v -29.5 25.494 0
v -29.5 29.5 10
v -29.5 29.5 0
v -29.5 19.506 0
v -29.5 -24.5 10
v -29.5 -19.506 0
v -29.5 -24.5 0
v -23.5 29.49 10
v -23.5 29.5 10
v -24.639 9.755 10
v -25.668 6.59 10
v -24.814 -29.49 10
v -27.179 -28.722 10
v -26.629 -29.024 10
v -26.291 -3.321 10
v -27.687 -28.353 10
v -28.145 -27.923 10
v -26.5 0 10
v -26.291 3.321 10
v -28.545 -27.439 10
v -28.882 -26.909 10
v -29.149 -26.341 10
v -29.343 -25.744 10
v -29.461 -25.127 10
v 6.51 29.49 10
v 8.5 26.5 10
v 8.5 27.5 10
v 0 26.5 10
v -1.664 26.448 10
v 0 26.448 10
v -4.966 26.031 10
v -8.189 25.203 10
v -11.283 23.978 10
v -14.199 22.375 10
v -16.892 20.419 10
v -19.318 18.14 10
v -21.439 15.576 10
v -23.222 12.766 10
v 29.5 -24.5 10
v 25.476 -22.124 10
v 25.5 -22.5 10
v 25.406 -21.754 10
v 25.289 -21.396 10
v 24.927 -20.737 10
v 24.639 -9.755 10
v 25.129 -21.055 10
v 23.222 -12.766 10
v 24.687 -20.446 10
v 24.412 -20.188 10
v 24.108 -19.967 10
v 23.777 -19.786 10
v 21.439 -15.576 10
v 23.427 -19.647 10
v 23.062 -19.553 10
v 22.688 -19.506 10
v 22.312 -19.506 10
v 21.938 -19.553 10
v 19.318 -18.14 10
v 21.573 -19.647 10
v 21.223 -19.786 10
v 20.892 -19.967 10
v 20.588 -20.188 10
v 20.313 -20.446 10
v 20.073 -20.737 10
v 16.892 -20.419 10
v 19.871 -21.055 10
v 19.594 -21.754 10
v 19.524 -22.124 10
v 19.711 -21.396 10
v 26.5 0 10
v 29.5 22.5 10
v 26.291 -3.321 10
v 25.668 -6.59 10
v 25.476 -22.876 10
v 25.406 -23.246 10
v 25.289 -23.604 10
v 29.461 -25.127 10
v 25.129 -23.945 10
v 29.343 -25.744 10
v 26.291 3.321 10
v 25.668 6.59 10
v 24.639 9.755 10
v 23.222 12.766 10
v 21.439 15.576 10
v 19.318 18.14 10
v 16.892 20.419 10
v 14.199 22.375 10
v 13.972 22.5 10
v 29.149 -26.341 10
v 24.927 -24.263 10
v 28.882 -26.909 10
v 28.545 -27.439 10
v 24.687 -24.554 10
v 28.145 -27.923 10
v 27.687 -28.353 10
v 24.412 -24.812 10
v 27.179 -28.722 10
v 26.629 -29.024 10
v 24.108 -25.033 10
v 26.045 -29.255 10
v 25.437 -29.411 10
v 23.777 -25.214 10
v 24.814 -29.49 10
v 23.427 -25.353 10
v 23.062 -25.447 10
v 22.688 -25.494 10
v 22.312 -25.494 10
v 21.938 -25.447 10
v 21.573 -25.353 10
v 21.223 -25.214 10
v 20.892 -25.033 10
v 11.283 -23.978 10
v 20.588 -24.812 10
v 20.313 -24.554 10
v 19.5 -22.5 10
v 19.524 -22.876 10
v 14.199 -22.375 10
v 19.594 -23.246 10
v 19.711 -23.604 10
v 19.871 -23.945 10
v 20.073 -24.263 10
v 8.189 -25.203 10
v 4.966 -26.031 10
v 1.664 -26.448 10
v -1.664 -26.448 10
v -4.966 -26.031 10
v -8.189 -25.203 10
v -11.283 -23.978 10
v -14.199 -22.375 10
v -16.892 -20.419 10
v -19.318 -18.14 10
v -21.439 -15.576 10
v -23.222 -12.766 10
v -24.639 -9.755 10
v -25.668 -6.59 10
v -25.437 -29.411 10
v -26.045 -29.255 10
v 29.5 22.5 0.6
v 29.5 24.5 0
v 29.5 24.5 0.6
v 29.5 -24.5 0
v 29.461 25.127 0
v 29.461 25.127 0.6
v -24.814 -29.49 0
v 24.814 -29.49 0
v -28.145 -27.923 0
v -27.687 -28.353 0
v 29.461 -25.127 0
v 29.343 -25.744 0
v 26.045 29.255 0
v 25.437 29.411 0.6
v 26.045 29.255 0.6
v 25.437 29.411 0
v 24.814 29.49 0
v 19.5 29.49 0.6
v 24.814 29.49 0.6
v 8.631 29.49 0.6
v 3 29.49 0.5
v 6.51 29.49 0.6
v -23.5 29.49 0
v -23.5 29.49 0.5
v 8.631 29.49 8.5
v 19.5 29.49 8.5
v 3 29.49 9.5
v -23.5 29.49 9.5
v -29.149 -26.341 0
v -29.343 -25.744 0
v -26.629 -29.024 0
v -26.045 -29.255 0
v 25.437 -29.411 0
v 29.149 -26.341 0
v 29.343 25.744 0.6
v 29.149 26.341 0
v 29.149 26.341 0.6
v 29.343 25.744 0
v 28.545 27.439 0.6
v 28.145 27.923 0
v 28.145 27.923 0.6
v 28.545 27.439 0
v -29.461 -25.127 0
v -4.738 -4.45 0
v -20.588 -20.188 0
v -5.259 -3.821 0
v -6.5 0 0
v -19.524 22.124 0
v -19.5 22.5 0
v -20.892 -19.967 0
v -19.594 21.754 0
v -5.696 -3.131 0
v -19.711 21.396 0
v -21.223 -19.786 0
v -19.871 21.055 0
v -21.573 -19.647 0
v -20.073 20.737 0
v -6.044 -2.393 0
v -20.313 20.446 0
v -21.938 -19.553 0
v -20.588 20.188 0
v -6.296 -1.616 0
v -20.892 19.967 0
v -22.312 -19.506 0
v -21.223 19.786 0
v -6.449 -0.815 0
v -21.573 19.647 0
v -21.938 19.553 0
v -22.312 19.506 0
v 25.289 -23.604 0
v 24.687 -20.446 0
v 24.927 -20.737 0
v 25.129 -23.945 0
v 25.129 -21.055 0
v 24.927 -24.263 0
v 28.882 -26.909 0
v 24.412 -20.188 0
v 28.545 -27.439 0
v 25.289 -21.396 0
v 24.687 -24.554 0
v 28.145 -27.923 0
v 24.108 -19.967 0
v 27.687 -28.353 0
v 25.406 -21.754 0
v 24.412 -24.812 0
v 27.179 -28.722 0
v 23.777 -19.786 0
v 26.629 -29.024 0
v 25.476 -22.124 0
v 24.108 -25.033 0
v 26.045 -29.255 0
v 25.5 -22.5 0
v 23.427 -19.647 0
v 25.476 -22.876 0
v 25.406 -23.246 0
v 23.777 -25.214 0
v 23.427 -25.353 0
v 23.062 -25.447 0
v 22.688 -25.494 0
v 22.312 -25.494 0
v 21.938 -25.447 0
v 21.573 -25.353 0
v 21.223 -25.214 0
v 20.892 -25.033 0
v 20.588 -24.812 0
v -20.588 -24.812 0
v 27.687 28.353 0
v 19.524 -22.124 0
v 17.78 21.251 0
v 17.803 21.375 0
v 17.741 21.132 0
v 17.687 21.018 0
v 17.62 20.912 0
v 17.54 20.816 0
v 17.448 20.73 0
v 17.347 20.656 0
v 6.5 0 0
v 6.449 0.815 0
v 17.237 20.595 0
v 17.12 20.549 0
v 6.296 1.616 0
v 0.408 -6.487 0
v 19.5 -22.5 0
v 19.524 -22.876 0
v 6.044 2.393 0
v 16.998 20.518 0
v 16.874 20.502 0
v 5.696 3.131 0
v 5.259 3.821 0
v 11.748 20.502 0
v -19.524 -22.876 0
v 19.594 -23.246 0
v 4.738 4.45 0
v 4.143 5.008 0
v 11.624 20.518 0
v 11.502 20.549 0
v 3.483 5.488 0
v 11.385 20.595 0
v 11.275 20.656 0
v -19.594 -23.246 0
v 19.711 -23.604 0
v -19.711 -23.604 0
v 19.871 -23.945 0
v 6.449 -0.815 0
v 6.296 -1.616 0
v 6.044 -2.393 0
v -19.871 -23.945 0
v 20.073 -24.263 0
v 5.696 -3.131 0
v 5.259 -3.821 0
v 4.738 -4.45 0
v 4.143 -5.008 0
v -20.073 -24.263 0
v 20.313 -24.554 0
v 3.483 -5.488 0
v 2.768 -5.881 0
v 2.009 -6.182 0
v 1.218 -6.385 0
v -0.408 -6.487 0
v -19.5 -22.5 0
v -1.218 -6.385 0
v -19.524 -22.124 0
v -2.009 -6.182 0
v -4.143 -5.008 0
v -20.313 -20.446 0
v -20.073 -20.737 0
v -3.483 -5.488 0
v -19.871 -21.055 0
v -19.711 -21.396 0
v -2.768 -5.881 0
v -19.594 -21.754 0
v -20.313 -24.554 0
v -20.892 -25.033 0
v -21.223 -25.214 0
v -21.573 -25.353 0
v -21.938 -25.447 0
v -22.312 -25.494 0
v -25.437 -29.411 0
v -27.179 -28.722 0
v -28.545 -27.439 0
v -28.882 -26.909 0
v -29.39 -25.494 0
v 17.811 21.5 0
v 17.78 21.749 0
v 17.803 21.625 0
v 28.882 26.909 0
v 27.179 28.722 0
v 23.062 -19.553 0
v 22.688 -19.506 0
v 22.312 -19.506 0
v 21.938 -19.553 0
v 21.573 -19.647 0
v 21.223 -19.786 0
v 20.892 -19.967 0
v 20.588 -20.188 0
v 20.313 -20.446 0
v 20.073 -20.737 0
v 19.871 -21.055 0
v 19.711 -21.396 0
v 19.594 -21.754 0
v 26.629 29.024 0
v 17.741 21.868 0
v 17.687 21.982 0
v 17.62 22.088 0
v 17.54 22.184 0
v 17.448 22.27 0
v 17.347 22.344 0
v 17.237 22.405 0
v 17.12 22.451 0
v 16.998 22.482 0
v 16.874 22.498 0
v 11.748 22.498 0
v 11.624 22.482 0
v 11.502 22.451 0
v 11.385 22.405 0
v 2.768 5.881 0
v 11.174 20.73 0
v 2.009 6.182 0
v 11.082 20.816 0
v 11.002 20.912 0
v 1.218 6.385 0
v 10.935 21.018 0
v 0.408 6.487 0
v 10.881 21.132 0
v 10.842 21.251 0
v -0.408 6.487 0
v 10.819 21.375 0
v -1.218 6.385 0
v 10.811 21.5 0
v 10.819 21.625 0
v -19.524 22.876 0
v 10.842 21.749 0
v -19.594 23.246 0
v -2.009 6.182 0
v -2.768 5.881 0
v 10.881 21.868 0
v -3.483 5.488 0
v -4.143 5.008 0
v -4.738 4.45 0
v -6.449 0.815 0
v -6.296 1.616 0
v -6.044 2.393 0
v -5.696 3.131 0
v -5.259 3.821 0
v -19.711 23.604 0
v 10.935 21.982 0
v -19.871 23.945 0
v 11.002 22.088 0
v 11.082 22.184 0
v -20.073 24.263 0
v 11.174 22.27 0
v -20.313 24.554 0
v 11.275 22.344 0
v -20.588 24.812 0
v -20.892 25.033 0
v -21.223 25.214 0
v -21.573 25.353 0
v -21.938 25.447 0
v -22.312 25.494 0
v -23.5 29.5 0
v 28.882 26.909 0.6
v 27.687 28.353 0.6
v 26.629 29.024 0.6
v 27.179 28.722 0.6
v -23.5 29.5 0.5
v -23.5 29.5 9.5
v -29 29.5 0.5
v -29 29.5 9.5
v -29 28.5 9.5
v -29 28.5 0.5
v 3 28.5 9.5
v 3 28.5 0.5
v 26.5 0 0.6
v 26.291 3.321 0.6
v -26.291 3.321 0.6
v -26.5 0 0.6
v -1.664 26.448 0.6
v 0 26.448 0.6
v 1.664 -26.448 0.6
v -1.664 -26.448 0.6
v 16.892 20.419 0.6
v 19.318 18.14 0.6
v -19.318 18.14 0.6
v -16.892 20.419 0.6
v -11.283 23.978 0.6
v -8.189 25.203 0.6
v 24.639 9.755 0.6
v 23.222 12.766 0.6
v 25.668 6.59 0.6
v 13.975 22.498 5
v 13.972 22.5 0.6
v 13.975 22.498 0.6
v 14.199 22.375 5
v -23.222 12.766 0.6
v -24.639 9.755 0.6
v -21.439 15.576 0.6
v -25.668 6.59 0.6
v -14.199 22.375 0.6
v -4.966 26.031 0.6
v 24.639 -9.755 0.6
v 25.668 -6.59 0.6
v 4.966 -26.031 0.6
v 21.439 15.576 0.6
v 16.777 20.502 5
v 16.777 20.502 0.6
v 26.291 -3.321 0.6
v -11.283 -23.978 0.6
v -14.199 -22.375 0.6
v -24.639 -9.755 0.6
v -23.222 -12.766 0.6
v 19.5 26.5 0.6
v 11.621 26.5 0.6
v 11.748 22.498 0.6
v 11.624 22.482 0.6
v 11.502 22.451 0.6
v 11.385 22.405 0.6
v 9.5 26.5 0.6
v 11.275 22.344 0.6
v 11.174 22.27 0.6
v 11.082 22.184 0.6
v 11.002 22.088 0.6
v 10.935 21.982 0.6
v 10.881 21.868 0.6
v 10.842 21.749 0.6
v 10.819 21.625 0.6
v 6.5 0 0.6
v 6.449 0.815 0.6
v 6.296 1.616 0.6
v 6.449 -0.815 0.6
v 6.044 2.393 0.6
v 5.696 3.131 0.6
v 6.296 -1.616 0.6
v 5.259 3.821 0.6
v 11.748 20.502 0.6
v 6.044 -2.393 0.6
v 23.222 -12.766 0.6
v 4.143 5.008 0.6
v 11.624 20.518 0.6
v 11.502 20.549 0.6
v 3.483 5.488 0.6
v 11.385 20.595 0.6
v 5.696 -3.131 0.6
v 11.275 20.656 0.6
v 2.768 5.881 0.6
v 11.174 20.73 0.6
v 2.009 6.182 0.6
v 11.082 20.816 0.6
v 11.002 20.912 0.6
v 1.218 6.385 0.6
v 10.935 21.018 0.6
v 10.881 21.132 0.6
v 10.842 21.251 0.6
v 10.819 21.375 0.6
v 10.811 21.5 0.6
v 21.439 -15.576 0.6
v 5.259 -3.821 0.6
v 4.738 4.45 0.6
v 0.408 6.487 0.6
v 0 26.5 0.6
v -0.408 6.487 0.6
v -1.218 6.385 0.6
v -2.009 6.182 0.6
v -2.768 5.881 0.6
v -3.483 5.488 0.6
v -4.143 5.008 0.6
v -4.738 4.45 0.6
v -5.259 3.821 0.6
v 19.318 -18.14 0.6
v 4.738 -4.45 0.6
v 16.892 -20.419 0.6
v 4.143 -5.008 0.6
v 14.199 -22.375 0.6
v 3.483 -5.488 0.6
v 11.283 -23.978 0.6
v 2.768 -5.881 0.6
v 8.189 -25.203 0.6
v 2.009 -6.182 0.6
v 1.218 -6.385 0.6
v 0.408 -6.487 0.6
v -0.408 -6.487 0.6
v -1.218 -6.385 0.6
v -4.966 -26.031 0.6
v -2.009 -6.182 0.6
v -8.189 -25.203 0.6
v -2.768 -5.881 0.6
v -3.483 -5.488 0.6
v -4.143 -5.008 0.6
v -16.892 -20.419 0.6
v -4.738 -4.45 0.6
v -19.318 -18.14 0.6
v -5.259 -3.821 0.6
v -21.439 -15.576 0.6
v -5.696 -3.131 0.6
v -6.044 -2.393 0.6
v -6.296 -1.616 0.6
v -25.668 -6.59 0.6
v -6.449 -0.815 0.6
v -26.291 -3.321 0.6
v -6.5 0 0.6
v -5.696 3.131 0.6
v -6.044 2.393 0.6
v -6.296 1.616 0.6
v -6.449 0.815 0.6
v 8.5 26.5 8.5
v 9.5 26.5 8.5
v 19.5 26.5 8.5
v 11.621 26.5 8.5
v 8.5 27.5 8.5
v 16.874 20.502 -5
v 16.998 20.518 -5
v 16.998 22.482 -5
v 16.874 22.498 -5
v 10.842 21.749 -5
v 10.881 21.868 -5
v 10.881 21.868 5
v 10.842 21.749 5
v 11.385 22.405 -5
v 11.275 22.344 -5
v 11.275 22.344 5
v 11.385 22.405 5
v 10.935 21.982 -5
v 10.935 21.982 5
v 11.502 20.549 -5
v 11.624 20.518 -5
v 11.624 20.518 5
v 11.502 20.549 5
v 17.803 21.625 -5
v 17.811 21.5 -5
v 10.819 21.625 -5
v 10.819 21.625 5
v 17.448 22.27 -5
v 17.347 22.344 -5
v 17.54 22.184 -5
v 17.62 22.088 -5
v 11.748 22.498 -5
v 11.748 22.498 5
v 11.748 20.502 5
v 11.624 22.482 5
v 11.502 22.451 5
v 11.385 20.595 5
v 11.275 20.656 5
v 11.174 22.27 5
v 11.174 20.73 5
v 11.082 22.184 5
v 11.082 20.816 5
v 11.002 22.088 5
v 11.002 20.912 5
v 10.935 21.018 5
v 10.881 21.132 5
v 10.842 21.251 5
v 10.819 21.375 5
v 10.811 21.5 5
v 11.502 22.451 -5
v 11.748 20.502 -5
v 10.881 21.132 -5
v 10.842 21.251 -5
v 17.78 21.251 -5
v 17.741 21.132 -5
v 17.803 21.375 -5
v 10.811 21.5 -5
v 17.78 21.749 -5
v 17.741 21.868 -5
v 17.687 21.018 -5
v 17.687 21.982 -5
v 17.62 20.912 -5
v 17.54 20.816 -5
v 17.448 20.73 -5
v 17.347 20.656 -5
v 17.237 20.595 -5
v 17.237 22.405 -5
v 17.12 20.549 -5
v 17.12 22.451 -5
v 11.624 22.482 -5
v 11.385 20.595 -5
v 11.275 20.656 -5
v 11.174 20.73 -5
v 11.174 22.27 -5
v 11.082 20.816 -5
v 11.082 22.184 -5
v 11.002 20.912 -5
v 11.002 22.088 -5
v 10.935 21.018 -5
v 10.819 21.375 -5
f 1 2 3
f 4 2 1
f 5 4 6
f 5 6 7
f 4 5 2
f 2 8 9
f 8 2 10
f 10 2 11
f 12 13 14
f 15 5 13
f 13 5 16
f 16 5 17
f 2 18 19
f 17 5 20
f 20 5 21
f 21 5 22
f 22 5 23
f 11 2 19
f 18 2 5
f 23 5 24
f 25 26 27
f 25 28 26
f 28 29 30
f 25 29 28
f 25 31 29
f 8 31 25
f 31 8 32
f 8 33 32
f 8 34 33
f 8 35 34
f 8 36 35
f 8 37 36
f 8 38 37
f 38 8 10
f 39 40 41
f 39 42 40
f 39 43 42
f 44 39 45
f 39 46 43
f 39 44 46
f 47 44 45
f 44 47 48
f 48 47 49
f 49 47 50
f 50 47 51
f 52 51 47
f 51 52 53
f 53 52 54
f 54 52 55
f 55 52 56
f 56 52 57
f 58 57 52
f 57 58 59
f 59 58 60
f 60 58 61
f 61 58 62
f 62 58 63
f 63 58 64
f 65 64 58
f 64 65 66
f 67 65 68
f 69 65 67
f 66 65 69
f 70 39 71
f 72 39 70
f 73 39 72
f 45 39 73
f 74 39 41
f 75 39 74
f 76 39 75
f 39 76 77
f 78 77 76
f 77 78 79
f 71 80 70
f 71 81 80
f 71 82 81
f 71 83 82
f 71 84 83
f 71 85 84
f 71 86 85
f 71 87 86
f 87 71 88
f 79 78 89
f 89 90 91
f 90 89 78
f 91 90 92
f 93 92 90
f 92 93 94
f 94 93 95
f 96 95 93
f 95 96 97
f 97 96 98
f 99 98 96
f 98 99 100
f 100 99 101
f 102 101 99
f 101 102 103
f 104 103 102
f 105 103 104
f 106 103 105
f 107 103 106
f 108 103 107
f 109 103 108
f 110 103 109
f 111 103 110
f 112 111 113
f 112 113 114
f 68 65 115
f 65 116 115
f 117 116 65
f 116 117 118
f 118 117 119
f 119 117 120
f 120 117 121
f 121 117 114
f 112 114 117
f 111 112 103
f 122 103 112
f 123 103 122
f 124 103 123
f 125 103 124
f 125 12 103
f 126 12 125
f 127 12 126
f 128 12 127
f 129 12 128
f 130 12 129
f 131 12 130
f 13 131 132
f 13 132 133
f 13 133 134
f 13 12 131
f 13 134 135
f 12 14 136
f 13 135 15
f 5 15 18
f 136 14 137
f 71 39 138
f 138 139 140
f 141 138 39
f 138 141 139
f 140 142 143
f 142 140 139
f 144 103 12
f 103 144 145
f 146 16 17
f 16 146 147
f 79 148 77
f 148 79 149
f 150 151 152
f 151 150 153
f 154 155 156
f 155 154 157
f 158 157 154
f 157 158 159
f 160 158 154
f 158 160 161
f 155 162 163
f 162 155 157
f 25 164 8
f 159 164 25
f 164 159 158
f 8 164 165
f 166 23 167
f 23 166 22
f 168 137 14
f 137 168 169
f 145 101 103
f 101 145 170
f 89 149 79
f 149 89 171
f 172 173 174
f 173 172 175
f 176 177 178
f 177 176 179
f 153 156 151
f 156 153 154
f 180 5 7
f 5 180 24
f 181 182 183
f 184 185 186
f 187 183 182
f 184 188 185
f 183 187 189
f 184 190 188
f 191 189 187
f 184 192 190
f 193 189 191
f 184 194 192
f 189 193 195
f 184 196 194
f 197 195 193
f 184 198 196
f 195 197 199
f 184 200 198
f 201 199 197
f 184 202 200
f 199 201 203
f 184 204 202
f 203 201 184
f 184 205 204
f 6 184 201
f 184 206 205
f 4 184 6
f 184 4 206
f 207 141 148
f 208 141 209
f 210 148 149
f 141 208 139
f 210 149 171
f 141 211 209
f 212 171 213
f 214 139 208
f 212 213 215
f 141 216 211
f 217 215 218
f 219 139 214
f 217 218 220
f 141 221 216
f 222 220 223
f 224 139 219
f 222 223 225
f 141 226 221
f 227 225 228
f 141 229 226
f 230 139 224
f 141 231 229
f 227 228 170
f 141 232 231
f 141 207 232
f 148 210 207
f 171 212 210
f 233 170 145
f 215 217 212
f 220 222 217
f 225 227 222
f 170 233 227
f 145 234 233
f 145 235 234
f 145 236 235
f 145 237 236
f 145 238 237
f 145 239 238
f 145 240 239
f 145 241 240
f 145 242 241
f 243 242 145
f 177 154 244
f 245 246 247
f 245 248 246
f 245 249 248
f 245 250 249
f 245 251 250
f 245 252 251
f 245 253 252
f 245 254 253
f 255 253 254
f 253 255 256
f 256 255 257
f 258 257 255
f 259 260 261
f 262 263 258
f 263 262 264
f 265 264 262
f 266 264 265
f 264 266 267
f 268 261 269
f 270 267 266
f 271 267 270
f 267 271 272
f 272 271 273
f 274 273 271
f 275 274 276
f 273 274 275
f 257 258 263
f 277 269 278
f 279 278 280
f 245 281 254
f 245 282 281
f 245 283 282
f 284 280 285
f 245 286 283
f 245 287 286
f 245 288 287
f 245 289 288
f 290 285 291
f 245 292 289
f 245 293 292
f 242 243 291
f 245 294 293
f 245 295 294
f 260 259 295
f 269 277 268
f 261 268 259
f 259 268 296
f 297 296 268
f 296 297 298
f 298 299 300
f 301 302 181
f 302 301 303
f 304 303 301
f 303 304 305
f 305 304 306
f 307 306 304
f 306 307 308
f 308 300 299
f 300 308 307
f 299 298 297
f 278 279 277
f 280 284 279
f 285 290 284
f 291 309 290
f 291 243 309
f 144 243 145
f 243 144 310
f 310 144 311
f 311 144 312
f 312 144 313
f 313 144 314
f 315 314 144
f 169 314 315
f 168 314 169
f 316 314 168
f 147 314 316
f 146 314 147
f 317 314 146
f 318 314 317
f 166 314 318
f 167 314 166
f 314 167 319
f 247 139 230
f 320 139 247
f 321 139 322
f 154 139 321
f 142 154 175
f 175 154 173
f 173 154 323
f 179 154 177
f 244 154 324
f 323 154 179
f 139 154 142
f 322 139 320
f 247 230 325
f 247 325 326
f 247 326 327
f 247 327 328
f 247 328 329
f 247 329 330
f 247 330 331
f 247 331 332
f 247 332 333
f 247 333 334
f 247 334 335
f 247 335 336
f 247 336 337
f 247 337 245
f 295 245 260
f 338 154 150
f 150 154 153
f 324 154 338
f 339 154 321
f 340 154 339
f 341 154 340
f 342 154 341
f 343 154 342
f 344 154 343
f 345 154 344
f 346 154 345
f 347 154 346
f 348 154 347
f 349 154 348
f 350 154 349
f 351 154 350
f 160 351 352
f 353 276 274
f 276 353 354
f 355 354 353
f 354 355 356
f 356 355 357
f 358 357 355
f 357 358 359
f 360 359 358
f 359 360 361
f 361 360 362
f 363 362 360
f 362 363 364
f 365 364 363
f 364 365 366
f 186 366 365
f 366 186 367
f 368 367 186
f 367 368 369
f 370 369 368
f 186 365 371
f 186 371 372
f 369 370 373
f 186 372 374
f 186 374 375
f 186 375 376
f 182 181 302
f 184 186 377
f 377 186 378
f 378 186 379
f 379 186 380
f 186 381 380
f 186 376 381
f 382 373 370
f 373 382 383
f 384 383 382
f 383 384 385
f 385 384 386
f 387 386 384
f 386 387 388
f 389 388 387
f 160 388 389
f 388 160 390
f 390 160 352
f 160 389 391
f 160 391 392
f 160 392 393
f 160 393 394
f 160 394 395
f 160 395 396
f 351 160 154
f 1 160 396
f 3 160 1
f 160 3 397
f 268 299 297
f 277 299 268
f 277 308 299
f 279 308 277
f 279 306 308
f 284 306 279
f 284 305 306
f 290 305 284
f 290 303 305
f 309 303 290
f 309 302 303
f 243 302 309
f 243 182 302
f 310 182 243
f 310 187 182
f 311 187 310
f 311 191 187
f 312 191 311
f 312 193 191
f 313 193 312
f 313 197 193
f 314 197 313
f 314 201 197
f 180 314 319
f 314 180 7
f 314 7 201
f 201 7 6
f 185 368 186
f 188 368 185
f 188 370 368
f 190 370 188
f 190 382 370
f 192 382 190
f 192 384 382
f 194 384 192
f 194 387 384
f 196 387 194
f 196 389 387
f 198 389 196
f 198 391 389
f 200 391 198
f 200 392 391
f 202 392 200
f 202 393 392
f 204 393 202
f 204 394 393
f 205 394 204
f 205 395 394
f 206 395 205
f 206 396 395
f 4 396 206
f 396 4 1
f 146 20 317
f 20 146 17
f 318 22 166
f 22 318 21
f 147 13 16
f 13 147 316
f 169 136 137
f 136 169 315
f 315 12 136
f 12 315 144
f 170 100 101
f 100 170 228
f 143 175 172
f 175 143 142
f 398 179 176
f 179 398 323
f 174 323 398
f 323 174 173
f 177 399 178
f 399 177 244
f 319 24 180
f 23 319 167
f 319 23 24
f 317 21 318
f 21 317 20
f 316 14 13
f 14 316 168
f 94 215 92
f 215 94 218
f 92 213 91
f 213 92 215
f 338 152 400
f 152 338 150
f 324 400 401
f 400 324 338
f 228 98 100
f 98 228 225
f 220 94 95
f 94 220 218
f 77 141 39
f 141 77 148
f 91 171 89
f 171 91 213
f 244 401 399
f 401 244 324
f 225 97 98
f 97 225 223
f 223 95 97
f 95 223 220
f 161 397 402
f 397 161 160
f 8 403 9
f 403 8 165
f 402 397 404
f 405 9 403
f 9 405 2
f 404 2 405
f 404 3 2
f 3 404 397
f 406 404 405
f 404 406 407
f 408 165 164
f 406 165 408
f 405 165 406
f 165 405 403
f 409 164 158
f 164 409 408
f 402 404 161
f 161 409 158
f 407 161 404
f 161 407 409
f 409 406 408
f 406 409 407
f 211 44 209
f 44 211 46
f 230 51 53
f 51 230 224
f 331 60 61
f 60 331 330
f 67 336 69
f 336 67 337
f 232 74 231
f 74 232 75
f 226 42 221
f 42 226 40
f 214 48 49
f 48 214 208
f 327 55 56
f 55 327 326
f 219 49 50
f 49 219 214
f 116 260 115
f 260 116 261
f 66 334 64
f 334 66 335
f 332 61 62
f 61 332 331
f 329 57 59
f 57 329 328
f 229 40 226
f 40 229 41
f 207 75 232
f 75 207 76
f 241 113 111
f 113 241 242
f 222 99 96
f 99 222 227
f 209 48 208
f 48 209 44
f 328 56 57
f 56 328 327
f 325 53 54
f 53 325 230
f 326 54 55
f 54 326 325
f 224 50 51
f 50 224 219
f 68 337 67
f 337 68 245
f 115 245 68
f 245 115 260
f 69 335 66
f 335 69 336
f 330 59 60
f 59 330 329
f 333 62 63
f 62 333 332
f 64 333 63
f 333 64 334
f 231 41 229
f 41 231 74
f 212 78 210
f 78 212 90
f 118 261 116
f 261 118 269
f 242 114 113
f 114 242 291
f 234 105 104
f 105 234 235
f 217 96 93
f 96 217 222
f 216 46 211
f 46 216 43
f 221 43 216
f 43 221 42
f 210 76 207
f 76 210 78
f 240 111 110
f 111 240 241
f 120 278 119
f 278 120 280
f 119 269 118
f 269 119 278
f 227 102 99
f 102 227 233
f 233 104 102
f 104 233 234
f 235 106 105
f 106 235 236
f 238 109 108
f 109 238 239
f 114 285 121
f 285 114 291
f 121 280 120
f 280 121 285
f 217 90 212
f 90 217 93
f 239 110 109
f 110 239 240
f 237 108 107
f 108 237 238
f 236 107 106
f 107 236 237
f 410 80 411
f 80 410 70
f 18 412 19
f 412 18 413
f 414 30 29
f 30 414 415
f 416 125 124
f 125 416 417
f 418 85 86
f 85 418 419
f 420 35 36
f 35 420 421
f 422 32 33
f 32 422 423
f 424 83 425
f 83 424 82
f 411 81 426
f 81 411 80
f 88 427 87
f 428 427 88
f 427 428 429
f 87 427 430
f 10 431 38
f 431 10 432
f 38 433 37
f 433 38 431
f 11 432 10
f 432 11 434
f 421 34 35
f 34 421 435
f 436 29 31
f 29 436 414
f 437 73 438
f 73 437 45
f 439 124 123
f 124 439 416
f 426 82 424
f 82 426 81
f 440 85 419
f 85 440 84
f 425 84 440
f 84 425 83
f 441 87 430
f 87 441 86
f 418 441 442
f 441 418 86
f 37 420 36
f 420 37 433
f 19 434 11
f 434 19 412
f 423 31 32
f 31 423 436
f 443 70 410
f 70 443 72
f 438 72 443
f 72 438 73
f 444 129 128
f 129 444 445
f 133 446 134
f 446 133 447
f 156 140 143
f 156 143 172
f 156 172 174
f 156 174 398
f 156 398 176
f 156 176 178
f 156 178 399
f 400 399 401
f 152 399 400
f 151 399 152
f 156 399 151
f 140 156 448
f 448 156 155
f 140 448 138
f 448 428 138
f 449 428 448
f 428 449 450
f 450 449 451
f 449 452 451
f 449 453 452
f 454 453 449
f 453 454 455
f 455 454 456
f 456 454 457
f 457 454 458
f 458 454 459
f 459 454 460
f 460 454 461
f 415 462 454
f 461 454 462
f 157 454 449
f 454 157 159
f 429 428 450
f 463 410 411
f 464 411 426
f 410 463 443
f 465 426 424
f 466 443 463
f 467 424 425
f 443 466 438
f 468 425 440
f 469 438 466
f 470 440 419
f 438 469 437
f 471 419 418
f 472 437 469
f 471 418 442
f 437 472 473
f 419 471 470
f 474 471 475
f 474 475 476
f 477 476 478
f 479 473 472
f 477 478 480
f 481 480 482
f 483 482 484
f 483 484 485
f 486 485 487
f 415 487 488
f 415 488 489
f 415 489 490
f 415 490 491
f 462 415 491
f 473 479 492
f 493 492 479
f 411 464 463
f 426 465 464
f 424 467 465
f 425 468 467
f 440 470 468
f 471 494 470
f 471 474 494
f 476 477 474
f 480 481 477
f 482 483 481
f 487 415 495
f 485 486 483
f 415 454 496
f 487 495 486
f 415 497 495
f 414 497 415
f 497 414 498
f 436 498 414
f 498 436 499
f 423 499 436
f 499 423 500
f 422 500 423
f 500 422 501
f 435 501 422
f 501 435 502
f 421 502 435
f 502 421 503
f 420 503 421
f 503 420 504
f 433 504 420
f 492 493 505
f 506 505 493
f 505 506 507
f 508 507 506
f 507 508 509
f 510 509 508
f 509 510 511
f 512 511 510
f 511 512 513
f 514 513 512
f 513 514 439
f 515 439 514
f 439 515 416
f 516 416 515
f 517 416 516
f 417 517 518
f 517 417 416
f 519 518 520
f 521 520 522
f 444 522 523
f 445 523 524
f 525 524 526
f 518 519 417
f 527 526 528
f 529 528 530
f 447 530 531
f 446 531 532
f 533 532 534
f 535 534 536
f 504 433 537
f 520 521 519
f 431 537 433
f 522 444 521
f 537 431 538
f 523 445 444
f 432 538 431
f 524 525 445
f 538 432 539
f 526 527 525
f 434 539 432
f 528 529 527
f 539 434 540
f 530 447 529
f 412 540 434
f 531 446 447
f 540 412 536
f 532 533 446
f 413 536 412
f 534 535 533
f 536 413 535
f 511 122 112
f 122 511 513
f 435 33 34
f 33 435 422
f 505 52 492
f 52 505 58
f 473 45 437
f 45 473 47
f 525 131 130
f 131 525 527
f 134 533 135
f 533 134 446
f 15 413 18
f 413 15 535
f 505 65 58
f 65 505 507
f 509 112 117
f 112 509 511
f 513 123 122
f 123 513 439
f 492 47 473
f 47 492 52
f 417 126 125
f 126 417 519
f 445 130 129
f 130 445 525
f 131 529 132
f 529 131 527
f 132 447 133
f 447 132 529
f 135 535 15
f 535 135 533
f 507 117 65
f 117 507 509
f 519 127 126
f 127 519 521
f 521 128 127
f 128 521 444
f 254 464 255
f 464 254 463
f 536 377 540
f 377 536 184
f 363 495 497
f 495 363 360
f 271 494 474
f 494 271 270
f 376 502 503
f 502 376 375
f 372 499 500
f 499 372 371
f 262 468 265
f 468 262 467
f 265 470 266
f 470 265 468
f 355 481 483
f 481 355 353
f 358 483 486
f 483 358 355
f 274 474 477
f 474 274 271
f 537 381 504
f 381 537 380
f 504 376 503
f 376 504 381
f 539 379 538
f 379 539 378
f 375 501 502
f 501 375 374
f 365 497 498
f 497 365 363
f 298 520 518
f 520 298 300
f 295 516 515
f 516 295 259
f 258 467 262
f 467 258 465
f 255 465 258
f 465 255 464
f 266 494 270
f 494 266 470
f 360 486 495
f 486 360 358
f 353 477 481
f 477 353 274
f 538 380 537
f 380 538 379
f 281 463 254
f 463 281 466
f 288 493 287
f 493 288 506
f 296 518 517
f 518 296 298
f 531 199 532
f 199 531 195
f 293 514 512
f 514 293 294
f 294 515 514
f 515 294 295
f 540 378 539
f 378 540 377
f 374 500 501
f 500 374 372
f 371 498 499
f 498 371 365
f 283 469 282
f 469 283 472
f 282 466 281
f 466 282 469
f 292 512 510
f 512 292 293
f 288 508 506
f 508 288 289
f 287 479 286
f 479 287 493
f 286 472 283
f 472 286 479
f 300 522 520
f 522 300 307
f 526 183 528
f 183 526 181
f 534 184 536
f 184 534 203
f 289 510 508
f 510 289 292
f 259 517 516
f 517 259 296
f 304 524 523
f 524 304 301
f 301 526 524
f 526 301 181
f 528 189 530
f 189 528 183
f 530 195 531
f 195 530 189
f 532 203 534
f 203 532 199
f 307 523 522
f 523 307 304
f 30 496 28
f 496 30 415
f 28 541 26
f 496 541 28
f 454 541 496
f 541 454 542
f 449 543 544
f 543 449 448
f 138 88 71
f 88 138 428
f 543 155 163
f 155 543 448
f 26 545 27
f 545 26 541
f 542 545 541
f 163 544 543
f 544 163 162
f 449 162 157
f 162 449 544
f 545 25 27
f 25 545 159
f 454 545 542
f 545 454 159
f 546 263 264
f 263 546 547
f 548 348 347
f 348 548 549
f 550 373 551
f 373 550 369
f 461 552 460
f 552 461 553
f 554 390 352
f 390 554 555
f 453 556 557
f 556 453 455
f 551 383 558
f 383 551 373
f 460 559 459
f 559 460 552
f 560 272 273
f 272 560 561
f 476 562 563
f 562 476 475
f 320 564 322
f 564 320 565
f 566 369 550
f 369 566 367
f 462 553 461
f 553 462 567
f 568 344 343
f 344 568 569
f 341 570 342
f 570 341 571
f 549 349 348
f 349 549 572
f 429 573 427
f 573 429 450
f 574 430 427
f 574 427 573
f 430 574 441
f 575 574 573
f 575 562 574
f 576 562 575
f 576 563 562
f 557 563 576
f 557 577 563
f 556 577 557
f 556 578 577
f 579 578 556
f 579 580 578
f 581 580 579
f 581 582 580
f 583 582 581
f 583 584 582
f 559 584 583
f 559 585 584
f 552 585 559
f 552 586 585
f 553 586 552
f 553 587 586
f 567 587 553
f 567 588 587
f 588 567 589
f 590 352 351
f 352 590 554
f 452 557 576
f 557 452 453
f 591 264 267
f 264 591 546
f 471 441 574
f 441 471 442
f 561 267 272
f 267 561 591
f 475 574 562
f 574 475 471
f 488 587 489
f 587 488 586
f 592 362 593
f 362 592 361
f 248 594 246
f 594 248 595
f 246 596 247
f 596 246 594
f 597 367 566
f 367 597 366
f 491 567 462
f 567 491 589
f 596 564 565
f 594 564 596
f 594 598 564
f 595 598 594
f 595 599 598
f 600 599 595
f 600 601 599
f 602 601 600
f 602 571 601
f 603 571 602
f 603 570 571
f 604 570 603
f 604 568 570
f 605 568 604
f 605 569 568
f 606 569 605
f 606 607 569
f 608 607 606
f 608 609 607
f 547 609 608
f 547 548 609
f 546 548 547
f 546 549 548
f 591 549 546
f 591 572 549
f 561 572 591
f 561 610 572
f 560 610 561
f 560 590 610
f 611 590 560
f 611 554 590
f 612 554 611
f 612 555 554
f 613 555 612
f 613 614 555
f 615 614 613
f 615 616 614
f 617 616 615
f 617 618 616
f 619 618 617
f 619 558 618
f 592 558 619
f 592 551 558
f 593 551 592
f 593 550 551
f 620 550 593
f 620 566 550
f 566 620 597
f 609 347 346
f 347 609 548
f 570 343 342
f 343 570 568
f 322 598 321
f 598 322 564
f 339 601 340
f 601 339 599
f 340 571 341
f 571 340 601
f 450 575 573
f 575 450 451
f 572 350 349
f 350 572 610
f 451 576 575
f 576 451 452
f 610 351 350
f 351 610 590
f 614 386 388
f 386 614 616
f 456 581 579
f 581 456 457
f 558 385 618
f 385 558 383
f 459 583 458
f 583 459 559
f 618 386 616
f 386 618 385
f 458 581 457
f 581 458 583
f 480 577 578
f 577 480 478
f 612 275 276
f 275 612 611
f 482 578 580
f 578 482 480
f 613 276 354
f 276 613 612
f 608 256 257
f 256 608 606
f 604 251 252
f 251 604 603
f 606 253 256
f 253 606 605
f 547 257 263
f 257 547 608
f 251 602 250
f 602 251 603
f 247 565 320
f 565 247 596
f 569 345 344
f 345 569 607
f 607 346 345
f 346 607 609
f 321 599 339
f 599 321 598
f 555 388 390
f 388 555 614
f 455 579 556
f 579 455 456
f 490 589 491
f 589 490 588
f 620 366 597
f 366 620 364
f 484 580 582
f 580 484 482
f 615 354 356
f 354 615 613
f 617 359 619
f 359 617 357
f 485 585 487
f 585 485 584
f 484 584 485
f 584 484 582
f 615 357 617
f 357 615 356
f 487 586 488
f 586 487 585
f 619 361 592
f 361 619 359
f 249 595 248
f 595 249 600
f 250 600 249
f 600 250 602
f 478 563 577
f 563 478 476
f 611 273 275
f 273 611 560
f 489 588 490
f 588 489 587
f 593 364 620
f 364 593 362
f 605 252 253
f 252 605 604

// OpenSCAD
$fn = 50;


union() {
	difference() {
		union() {
			hull() {
				translate(v = [-24.5000000000, 24.5000000000, 0]) {
					cylinder(h = 10, r = 5);
				}
				translate(v = [24.5000000000, 24.5000000000, 0]) {
					cylinder(h = 10, r = 5);
				}
				translate(v = [-24.5000000000, -24.5000000000, 0]) {
					cylinder(h = 10, r = 5);
				}
				translate(v = [24.5000000000, -24.5000000000, 0]) {
					cylinder(h = 10, r = 5);
				}
			}
			translate(v = [-29.5000000000, 23.5000000000, 0]) {
				cube(size = [6, 6, 10]);
			}
		}
		union() {
			translate(v = [-30.0000000000, -22.5000000000, -250.0000000000]) {
				rotate(a = [0, 0, 0]) {
					difference() {
						union() {
							hull() {
								translate(v = [7.5000000000, 0, 0]) {
									cylinder(h = 250, r = 3.0000000000, r1 = 3.0000000000, r2 = 3.0000000000);
								}
								translate(v = [-7.5000000000, 0, 0]) {
									cylinder(h = 250, r = 3.0000000000, r1 = 3.0000000000, r2 = 3.0000000000);
								}
							}
						}
						union();
					}
				}
			}
			translate(v = [-30.0000000000, 22.5000000000, -250.0000000000]) {
				rotate(a = [0, 0, 0]) {
					difference() {
						union() {
							hull() {
								translate(v = [7.5000000000, 0, 0]) {
									cylinder(h = 250, r = 3.0000000000, r1 = 3.0000000000, r2 = 3.0000000000);
								}
								translate(v = [-7.5000000000, 0, 0]) {
									cylinder(h = 250, r = 3.0000000000, r1 = 3.0000000000, r2 = 3.0000000000);
								}
							}
						}
						union();
					}
				}
			}
			translate(v = [-29.0000000000, 28.5000000000, 0.5000000000]) {
				cube(size = [32, 1, 9.0000000000]);
			}
			translate(v = [22.5000000000, -22.5000000000, 0]) {
				cylinder(h = 100, r = 3.0000000000);
			}
			translate(v = [0, 0, 0.6000000000]) {
				cylinder(h = 12.4000000000, r = 26.5000000000);
			}
			translate(v = [0, 0, -5.0000000000]) {
				cylinder(h = 10, r = 6.5000000000);
			}
			translate(v = [0.0000000000, 22.5000000000, 0.6000000000]) {
				cube(size = [29.5000000000, 4, 12.4000000000]);
			}
			translate(v = [19.5000000000, 22.5000000000, 0.6000000000]) {
				cube(size = [10, 7, 12.4000000000]);
			}
			translate(v = [8.5000000000, 22.5000000000, 8.5000000000]) {
				cube(size = [21, 7, 1.5000000000]);
			}
			translate(v = [5.7500000000, 30.2500000000, 0.6000000000]) {
				rotate(a = [0, 0, -45]) {
					cube(size = [7.5000000000, 1.5000000000, 12.4000000000]);
				}
			}
			translate(v = [5.0610000000, 20.5000000000, 0.6000000000]) {
				cube(size = [7.5000000000, 2, 9.4000000000]);
			}
		}
	}
	union() {
		translate(v = [14.3110000000, 21.5000000000, -5.0000000000]) {
			rotate(a = [0, 0, 0]) {
				difference() {
					union() {
						#hull() {
							#translate(v = [2.5000000000, 0, 0]) {
								cylinder(h = 10, r = 1.0000000000, r1 = 1.0000000000, r2 = 1.0000000000);
							}
							#translate(v = [-2.5000000000, 0, 0]) {
								cylinder(h = 10, r = 1.0000000000, r1 = 1.0000000000, r2 = 1.0000000000);
							}
						}
					}
					union();
				}
			}
		}
	}
}
